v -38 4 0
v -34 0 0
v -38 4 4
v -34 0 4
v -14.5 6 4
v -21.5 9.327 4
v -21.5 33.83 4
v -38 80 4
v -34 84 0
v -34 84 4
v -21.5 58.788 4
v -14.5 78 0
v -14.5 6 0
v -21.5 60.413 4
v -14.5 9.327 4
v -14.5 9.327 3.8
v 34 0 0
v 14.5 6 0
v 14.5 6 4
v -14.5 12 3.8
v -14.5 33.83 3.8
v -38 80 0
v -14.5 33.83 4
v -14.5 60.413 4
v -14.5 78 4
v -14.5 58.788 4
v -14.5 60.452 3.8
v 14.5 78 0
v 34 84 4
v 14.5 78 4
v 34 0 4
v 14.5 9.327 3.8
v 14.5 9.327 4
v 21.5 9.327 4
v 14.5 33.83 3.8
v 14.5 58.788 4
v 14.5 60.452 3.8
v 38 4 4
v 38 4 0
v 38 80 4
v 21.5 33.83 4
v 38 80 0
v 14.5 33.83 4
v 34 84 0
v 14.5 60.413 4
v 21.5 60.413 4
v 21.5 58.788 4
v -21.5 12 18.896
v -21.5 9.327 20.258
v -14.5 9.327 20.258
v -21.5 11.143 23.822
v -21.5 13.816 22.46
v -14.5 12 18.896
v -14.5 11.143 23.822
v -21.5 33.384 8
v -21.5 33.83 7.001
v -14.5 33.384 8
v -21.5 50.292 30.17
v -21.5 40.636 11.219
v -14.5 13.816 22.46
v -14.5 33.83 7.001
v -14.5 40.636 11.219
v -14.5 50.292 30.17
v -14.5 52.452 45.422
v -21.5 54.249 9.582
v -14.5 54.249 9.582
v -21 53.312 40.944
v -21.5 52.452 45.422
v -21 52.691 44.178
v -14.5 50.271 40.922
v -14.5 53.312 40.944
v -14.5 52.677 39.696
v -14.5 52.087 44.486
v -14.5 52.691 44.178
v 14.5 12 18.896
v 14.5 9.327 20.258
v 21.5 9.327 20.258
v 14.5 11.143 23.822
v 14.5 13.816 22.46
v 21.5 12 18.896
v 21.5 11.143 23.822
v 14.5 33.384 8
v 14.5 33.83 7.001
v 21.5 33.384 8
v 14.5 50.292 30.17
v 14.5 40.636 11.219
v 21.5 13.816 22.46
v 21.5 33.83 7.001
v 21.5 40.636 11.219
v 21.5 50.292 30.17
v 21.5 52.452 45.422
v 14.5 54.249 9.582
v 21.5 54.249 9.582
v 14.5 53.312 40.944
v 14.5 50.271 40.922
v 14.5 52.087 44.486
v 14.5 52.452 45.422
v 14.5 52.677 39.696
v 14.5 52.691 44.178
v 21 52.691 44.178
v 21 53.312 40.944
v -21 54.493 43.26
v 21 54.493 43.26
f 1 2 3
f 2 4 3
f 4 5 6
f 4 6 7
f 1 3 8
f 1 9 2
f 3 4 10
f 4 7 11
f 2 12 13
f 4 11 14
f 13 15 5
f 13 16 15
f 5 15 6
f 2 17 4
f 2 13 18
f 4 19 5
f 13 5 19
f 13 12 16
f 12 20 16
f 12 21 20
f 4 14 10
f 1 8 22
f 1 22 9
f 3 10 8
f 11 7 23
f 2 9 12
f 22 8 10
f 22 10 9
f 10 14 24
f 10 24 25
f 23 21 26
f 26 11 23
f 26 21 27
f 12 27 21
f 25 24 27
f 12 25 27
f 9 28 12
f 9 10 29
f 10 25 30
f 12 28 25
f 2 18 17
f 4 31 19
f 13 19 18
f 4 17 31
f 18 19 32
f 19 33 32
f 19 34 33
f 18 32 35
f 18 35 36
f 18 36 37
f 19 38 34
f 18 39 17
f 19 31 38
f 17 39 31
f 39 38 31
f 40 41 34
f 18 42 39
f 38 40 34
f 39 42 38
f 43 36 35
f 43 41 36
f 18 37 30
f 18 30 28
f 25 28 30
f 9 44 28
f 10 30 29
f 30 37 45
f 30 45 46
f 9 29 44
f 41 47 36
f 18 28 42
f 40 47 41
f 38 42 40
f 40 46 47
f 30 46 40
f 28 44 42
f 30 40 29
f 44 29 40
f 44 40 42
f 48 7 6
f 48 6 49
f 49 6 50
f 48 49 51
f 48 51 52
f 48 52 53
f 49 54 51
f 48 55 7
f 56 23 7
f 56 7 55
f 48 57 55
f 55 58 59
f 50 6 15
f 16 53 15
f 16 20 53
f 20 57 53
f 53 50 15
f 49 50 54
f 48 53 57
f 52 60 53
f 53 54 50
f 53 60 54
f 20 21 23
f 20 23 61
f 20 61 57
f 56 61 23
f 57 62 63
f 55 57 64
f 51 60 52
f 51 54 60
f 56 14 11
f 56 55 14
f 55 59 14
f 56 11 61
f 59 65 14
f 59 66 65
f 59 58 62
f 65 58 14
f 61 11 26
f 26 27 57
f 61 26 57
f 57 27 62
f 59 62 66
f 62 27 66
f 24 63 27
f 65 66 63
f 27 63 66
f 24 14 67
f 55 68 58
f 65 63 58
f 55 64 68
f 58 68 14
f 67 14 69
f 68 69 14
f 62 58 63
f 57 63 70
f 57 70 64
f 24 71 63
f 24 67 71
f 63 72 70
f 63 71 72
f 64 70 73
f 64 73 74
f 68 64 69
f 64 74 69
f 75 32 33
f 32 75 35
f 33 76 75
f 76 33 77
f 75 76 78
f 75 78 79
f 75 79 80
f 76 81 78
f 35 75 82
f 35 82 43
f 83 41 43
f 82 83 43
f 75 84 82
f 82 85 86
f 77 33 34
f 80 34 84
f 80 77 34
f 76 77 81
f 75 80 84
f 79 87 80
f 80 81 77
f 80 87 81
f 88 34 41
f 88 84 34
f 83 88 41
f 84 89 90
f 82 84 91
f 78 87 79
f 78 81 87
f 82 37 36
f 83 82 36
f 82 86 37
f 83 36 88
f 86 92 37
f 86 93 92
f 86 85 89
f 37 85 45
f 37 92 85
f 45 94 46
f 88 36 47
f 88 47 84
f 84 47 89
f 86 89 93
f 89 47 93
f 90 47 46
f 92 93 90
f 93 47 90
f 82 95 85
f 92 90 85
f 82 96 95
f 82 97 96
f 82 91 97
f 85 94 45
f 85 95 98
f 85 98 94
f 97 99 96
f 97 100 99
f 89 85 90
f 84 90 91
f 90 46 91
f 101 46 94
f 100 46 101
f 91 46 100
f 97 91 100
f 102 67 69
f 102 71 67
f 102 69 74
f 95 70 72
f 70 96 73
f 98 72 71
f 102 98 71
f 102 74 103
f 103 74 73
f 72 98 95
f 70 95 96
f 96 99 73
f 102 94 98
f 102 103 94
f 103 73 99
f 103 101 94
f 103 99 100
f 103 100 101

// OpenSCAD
// CoreS3 SE + M5GO-BOTTOM 3 desktop stand, V1. Units: mm.
// Print base-down. Angle is REARWARD FROM VERTICAL (screen 63 deg to desk).
// The assembled 23 mm measurement controls fit, not summed module specs.
device_width = 54;
device_height = 54;
device_thickness = 23;
thickness_clearance = 1.0; // TOTAL: cradle depth = 24 mm
view_angle = 27;
base_width = 76;
base_depth = 84;
base_thickness = 4;
corner_chamfer = 4;
rail_width = 7;
rail_spacing = 36; // center-to-center; supports lie inside device sides
frame_wall = 5;
support_height = 42; // along back of device, leaves top open
rear_extension = 8;
front_y = 12;
seat_lift = 4;
tab_height = 4;
tab_thickness = 3;
rubber_feet = false;
foot_diameter = 8;
foot_recess_depth = 1;
show_device = false; // preview only; excluded from STL via % modifier
$fn = 64;

depth = device_thickness + thickness_clearance;
origin_z = base_thickness + seat_lift + depth*sin(view_angle);
function p(n,u) = [front_y+n*cos(view_angle)+u*sin(view_angle),
                  origin_z-n*sin(view_angle)+u*cos(view_angle)];
a=p(depth,-1); // overlap lower seat to avoid point-only connections
b=p(depth,support_height);
c=[b[0]+rear_extension,base_thickness-0.2];
triangle=[a,b,c];
seat=[p(0,0),p(depth+0.5,0),[p(depth+0.5,0)[0],base_thickness-0.2],
      [front_y,base_thickness-0.2]];
tabs=[p(-tab_thickness,tab_height),p(0,tab_height),p(0,0),
      [front_y,base_thickness-0.2],
      [p(-tab_thickness,0)[0],base_thickness-0.2],p(-tab_thickness,0)];

assert(view_angle>=10 && view_angle<=40, "Use a 10-40 degree tilt for V1.");
assert(base_width>device_width && rail_spacing+rail_width<device_width);
assert(base_depth>c[0]+5, "Increase base_depth for this angle/height.");
assert(foot_recess_depth<base_thickness && thickness_clearance>=0);

module side_extrude(x) {
    // Local 2D coordinates are [y,z]; extrusion is along global x.
    translate([x-rail_width/2,0,0])
        multmatrix([[0,0,1,0],[1,0,0,0],[0,1,0,0],[0,0,0,1]])
            linear_extrude(height=rail_width) children();
}
module rear_brace() {
    translate([-(rail_spacing+rail_width-1)/2,0,0])
        multmatrix([[0,0,1,0],[1,0,0,0],[0,1,0,0],[0,0,0,1]])
            linear_extrude(height=rail_spacing+rail_width-1)
                polygon([p(depth+0.1,support_height-5),p(depth+2.8,support_height-5),
                         p(depth+2.8,support_height-1),p(depth+0.1,support_height-1)]);
}
module base() {
    w=base_width/2; d=base_depth; r=corner_chamfer;
    linear_extrude(height=base_thickness) difference() {
        polygon([[-w+r,0],[w-r,0],[w,r],[w,d-r],
                 [w-r,d],[-w+r,d],[-w,d-r],[-w,r]]);
        translate([-(rail_spacing-rail_width)/2,6])
            square([rail_spacing-rail_width,base_depth-12]);
    }
}
module stand() {
    difference() {
        union() {
            base();
            rear_brace(); // 29 mm clear bridge; inspect bridge paths in slicer
            for(x=[-rail_spacing/2,rail_spacing/2]) side_extrude(x) {
                polygon(seat);
                polygon(tabs);
                difference() {
                    polygon(triangle);
                    offset(delta=-frame_wall) polygon(triangle);
                }
            }
        }
        if(rubber_feet)
            for(x=[-base_width/2+10,base_width/2-10])
                for(y=[10,base_depth-10])
                    translate([x,y,-0.1])
                        cylinder(d=foot_diameter,h=foot_recess_depth+0.1);
    }
}
stand();
if(show_device) %color([0.25,0.45,0.65,0.35])
    translate([-device_width/2,front_y,origin_z])
        rotate([-view_angle,0,0])
            cube([device_width,device_thickness,device_height]);
